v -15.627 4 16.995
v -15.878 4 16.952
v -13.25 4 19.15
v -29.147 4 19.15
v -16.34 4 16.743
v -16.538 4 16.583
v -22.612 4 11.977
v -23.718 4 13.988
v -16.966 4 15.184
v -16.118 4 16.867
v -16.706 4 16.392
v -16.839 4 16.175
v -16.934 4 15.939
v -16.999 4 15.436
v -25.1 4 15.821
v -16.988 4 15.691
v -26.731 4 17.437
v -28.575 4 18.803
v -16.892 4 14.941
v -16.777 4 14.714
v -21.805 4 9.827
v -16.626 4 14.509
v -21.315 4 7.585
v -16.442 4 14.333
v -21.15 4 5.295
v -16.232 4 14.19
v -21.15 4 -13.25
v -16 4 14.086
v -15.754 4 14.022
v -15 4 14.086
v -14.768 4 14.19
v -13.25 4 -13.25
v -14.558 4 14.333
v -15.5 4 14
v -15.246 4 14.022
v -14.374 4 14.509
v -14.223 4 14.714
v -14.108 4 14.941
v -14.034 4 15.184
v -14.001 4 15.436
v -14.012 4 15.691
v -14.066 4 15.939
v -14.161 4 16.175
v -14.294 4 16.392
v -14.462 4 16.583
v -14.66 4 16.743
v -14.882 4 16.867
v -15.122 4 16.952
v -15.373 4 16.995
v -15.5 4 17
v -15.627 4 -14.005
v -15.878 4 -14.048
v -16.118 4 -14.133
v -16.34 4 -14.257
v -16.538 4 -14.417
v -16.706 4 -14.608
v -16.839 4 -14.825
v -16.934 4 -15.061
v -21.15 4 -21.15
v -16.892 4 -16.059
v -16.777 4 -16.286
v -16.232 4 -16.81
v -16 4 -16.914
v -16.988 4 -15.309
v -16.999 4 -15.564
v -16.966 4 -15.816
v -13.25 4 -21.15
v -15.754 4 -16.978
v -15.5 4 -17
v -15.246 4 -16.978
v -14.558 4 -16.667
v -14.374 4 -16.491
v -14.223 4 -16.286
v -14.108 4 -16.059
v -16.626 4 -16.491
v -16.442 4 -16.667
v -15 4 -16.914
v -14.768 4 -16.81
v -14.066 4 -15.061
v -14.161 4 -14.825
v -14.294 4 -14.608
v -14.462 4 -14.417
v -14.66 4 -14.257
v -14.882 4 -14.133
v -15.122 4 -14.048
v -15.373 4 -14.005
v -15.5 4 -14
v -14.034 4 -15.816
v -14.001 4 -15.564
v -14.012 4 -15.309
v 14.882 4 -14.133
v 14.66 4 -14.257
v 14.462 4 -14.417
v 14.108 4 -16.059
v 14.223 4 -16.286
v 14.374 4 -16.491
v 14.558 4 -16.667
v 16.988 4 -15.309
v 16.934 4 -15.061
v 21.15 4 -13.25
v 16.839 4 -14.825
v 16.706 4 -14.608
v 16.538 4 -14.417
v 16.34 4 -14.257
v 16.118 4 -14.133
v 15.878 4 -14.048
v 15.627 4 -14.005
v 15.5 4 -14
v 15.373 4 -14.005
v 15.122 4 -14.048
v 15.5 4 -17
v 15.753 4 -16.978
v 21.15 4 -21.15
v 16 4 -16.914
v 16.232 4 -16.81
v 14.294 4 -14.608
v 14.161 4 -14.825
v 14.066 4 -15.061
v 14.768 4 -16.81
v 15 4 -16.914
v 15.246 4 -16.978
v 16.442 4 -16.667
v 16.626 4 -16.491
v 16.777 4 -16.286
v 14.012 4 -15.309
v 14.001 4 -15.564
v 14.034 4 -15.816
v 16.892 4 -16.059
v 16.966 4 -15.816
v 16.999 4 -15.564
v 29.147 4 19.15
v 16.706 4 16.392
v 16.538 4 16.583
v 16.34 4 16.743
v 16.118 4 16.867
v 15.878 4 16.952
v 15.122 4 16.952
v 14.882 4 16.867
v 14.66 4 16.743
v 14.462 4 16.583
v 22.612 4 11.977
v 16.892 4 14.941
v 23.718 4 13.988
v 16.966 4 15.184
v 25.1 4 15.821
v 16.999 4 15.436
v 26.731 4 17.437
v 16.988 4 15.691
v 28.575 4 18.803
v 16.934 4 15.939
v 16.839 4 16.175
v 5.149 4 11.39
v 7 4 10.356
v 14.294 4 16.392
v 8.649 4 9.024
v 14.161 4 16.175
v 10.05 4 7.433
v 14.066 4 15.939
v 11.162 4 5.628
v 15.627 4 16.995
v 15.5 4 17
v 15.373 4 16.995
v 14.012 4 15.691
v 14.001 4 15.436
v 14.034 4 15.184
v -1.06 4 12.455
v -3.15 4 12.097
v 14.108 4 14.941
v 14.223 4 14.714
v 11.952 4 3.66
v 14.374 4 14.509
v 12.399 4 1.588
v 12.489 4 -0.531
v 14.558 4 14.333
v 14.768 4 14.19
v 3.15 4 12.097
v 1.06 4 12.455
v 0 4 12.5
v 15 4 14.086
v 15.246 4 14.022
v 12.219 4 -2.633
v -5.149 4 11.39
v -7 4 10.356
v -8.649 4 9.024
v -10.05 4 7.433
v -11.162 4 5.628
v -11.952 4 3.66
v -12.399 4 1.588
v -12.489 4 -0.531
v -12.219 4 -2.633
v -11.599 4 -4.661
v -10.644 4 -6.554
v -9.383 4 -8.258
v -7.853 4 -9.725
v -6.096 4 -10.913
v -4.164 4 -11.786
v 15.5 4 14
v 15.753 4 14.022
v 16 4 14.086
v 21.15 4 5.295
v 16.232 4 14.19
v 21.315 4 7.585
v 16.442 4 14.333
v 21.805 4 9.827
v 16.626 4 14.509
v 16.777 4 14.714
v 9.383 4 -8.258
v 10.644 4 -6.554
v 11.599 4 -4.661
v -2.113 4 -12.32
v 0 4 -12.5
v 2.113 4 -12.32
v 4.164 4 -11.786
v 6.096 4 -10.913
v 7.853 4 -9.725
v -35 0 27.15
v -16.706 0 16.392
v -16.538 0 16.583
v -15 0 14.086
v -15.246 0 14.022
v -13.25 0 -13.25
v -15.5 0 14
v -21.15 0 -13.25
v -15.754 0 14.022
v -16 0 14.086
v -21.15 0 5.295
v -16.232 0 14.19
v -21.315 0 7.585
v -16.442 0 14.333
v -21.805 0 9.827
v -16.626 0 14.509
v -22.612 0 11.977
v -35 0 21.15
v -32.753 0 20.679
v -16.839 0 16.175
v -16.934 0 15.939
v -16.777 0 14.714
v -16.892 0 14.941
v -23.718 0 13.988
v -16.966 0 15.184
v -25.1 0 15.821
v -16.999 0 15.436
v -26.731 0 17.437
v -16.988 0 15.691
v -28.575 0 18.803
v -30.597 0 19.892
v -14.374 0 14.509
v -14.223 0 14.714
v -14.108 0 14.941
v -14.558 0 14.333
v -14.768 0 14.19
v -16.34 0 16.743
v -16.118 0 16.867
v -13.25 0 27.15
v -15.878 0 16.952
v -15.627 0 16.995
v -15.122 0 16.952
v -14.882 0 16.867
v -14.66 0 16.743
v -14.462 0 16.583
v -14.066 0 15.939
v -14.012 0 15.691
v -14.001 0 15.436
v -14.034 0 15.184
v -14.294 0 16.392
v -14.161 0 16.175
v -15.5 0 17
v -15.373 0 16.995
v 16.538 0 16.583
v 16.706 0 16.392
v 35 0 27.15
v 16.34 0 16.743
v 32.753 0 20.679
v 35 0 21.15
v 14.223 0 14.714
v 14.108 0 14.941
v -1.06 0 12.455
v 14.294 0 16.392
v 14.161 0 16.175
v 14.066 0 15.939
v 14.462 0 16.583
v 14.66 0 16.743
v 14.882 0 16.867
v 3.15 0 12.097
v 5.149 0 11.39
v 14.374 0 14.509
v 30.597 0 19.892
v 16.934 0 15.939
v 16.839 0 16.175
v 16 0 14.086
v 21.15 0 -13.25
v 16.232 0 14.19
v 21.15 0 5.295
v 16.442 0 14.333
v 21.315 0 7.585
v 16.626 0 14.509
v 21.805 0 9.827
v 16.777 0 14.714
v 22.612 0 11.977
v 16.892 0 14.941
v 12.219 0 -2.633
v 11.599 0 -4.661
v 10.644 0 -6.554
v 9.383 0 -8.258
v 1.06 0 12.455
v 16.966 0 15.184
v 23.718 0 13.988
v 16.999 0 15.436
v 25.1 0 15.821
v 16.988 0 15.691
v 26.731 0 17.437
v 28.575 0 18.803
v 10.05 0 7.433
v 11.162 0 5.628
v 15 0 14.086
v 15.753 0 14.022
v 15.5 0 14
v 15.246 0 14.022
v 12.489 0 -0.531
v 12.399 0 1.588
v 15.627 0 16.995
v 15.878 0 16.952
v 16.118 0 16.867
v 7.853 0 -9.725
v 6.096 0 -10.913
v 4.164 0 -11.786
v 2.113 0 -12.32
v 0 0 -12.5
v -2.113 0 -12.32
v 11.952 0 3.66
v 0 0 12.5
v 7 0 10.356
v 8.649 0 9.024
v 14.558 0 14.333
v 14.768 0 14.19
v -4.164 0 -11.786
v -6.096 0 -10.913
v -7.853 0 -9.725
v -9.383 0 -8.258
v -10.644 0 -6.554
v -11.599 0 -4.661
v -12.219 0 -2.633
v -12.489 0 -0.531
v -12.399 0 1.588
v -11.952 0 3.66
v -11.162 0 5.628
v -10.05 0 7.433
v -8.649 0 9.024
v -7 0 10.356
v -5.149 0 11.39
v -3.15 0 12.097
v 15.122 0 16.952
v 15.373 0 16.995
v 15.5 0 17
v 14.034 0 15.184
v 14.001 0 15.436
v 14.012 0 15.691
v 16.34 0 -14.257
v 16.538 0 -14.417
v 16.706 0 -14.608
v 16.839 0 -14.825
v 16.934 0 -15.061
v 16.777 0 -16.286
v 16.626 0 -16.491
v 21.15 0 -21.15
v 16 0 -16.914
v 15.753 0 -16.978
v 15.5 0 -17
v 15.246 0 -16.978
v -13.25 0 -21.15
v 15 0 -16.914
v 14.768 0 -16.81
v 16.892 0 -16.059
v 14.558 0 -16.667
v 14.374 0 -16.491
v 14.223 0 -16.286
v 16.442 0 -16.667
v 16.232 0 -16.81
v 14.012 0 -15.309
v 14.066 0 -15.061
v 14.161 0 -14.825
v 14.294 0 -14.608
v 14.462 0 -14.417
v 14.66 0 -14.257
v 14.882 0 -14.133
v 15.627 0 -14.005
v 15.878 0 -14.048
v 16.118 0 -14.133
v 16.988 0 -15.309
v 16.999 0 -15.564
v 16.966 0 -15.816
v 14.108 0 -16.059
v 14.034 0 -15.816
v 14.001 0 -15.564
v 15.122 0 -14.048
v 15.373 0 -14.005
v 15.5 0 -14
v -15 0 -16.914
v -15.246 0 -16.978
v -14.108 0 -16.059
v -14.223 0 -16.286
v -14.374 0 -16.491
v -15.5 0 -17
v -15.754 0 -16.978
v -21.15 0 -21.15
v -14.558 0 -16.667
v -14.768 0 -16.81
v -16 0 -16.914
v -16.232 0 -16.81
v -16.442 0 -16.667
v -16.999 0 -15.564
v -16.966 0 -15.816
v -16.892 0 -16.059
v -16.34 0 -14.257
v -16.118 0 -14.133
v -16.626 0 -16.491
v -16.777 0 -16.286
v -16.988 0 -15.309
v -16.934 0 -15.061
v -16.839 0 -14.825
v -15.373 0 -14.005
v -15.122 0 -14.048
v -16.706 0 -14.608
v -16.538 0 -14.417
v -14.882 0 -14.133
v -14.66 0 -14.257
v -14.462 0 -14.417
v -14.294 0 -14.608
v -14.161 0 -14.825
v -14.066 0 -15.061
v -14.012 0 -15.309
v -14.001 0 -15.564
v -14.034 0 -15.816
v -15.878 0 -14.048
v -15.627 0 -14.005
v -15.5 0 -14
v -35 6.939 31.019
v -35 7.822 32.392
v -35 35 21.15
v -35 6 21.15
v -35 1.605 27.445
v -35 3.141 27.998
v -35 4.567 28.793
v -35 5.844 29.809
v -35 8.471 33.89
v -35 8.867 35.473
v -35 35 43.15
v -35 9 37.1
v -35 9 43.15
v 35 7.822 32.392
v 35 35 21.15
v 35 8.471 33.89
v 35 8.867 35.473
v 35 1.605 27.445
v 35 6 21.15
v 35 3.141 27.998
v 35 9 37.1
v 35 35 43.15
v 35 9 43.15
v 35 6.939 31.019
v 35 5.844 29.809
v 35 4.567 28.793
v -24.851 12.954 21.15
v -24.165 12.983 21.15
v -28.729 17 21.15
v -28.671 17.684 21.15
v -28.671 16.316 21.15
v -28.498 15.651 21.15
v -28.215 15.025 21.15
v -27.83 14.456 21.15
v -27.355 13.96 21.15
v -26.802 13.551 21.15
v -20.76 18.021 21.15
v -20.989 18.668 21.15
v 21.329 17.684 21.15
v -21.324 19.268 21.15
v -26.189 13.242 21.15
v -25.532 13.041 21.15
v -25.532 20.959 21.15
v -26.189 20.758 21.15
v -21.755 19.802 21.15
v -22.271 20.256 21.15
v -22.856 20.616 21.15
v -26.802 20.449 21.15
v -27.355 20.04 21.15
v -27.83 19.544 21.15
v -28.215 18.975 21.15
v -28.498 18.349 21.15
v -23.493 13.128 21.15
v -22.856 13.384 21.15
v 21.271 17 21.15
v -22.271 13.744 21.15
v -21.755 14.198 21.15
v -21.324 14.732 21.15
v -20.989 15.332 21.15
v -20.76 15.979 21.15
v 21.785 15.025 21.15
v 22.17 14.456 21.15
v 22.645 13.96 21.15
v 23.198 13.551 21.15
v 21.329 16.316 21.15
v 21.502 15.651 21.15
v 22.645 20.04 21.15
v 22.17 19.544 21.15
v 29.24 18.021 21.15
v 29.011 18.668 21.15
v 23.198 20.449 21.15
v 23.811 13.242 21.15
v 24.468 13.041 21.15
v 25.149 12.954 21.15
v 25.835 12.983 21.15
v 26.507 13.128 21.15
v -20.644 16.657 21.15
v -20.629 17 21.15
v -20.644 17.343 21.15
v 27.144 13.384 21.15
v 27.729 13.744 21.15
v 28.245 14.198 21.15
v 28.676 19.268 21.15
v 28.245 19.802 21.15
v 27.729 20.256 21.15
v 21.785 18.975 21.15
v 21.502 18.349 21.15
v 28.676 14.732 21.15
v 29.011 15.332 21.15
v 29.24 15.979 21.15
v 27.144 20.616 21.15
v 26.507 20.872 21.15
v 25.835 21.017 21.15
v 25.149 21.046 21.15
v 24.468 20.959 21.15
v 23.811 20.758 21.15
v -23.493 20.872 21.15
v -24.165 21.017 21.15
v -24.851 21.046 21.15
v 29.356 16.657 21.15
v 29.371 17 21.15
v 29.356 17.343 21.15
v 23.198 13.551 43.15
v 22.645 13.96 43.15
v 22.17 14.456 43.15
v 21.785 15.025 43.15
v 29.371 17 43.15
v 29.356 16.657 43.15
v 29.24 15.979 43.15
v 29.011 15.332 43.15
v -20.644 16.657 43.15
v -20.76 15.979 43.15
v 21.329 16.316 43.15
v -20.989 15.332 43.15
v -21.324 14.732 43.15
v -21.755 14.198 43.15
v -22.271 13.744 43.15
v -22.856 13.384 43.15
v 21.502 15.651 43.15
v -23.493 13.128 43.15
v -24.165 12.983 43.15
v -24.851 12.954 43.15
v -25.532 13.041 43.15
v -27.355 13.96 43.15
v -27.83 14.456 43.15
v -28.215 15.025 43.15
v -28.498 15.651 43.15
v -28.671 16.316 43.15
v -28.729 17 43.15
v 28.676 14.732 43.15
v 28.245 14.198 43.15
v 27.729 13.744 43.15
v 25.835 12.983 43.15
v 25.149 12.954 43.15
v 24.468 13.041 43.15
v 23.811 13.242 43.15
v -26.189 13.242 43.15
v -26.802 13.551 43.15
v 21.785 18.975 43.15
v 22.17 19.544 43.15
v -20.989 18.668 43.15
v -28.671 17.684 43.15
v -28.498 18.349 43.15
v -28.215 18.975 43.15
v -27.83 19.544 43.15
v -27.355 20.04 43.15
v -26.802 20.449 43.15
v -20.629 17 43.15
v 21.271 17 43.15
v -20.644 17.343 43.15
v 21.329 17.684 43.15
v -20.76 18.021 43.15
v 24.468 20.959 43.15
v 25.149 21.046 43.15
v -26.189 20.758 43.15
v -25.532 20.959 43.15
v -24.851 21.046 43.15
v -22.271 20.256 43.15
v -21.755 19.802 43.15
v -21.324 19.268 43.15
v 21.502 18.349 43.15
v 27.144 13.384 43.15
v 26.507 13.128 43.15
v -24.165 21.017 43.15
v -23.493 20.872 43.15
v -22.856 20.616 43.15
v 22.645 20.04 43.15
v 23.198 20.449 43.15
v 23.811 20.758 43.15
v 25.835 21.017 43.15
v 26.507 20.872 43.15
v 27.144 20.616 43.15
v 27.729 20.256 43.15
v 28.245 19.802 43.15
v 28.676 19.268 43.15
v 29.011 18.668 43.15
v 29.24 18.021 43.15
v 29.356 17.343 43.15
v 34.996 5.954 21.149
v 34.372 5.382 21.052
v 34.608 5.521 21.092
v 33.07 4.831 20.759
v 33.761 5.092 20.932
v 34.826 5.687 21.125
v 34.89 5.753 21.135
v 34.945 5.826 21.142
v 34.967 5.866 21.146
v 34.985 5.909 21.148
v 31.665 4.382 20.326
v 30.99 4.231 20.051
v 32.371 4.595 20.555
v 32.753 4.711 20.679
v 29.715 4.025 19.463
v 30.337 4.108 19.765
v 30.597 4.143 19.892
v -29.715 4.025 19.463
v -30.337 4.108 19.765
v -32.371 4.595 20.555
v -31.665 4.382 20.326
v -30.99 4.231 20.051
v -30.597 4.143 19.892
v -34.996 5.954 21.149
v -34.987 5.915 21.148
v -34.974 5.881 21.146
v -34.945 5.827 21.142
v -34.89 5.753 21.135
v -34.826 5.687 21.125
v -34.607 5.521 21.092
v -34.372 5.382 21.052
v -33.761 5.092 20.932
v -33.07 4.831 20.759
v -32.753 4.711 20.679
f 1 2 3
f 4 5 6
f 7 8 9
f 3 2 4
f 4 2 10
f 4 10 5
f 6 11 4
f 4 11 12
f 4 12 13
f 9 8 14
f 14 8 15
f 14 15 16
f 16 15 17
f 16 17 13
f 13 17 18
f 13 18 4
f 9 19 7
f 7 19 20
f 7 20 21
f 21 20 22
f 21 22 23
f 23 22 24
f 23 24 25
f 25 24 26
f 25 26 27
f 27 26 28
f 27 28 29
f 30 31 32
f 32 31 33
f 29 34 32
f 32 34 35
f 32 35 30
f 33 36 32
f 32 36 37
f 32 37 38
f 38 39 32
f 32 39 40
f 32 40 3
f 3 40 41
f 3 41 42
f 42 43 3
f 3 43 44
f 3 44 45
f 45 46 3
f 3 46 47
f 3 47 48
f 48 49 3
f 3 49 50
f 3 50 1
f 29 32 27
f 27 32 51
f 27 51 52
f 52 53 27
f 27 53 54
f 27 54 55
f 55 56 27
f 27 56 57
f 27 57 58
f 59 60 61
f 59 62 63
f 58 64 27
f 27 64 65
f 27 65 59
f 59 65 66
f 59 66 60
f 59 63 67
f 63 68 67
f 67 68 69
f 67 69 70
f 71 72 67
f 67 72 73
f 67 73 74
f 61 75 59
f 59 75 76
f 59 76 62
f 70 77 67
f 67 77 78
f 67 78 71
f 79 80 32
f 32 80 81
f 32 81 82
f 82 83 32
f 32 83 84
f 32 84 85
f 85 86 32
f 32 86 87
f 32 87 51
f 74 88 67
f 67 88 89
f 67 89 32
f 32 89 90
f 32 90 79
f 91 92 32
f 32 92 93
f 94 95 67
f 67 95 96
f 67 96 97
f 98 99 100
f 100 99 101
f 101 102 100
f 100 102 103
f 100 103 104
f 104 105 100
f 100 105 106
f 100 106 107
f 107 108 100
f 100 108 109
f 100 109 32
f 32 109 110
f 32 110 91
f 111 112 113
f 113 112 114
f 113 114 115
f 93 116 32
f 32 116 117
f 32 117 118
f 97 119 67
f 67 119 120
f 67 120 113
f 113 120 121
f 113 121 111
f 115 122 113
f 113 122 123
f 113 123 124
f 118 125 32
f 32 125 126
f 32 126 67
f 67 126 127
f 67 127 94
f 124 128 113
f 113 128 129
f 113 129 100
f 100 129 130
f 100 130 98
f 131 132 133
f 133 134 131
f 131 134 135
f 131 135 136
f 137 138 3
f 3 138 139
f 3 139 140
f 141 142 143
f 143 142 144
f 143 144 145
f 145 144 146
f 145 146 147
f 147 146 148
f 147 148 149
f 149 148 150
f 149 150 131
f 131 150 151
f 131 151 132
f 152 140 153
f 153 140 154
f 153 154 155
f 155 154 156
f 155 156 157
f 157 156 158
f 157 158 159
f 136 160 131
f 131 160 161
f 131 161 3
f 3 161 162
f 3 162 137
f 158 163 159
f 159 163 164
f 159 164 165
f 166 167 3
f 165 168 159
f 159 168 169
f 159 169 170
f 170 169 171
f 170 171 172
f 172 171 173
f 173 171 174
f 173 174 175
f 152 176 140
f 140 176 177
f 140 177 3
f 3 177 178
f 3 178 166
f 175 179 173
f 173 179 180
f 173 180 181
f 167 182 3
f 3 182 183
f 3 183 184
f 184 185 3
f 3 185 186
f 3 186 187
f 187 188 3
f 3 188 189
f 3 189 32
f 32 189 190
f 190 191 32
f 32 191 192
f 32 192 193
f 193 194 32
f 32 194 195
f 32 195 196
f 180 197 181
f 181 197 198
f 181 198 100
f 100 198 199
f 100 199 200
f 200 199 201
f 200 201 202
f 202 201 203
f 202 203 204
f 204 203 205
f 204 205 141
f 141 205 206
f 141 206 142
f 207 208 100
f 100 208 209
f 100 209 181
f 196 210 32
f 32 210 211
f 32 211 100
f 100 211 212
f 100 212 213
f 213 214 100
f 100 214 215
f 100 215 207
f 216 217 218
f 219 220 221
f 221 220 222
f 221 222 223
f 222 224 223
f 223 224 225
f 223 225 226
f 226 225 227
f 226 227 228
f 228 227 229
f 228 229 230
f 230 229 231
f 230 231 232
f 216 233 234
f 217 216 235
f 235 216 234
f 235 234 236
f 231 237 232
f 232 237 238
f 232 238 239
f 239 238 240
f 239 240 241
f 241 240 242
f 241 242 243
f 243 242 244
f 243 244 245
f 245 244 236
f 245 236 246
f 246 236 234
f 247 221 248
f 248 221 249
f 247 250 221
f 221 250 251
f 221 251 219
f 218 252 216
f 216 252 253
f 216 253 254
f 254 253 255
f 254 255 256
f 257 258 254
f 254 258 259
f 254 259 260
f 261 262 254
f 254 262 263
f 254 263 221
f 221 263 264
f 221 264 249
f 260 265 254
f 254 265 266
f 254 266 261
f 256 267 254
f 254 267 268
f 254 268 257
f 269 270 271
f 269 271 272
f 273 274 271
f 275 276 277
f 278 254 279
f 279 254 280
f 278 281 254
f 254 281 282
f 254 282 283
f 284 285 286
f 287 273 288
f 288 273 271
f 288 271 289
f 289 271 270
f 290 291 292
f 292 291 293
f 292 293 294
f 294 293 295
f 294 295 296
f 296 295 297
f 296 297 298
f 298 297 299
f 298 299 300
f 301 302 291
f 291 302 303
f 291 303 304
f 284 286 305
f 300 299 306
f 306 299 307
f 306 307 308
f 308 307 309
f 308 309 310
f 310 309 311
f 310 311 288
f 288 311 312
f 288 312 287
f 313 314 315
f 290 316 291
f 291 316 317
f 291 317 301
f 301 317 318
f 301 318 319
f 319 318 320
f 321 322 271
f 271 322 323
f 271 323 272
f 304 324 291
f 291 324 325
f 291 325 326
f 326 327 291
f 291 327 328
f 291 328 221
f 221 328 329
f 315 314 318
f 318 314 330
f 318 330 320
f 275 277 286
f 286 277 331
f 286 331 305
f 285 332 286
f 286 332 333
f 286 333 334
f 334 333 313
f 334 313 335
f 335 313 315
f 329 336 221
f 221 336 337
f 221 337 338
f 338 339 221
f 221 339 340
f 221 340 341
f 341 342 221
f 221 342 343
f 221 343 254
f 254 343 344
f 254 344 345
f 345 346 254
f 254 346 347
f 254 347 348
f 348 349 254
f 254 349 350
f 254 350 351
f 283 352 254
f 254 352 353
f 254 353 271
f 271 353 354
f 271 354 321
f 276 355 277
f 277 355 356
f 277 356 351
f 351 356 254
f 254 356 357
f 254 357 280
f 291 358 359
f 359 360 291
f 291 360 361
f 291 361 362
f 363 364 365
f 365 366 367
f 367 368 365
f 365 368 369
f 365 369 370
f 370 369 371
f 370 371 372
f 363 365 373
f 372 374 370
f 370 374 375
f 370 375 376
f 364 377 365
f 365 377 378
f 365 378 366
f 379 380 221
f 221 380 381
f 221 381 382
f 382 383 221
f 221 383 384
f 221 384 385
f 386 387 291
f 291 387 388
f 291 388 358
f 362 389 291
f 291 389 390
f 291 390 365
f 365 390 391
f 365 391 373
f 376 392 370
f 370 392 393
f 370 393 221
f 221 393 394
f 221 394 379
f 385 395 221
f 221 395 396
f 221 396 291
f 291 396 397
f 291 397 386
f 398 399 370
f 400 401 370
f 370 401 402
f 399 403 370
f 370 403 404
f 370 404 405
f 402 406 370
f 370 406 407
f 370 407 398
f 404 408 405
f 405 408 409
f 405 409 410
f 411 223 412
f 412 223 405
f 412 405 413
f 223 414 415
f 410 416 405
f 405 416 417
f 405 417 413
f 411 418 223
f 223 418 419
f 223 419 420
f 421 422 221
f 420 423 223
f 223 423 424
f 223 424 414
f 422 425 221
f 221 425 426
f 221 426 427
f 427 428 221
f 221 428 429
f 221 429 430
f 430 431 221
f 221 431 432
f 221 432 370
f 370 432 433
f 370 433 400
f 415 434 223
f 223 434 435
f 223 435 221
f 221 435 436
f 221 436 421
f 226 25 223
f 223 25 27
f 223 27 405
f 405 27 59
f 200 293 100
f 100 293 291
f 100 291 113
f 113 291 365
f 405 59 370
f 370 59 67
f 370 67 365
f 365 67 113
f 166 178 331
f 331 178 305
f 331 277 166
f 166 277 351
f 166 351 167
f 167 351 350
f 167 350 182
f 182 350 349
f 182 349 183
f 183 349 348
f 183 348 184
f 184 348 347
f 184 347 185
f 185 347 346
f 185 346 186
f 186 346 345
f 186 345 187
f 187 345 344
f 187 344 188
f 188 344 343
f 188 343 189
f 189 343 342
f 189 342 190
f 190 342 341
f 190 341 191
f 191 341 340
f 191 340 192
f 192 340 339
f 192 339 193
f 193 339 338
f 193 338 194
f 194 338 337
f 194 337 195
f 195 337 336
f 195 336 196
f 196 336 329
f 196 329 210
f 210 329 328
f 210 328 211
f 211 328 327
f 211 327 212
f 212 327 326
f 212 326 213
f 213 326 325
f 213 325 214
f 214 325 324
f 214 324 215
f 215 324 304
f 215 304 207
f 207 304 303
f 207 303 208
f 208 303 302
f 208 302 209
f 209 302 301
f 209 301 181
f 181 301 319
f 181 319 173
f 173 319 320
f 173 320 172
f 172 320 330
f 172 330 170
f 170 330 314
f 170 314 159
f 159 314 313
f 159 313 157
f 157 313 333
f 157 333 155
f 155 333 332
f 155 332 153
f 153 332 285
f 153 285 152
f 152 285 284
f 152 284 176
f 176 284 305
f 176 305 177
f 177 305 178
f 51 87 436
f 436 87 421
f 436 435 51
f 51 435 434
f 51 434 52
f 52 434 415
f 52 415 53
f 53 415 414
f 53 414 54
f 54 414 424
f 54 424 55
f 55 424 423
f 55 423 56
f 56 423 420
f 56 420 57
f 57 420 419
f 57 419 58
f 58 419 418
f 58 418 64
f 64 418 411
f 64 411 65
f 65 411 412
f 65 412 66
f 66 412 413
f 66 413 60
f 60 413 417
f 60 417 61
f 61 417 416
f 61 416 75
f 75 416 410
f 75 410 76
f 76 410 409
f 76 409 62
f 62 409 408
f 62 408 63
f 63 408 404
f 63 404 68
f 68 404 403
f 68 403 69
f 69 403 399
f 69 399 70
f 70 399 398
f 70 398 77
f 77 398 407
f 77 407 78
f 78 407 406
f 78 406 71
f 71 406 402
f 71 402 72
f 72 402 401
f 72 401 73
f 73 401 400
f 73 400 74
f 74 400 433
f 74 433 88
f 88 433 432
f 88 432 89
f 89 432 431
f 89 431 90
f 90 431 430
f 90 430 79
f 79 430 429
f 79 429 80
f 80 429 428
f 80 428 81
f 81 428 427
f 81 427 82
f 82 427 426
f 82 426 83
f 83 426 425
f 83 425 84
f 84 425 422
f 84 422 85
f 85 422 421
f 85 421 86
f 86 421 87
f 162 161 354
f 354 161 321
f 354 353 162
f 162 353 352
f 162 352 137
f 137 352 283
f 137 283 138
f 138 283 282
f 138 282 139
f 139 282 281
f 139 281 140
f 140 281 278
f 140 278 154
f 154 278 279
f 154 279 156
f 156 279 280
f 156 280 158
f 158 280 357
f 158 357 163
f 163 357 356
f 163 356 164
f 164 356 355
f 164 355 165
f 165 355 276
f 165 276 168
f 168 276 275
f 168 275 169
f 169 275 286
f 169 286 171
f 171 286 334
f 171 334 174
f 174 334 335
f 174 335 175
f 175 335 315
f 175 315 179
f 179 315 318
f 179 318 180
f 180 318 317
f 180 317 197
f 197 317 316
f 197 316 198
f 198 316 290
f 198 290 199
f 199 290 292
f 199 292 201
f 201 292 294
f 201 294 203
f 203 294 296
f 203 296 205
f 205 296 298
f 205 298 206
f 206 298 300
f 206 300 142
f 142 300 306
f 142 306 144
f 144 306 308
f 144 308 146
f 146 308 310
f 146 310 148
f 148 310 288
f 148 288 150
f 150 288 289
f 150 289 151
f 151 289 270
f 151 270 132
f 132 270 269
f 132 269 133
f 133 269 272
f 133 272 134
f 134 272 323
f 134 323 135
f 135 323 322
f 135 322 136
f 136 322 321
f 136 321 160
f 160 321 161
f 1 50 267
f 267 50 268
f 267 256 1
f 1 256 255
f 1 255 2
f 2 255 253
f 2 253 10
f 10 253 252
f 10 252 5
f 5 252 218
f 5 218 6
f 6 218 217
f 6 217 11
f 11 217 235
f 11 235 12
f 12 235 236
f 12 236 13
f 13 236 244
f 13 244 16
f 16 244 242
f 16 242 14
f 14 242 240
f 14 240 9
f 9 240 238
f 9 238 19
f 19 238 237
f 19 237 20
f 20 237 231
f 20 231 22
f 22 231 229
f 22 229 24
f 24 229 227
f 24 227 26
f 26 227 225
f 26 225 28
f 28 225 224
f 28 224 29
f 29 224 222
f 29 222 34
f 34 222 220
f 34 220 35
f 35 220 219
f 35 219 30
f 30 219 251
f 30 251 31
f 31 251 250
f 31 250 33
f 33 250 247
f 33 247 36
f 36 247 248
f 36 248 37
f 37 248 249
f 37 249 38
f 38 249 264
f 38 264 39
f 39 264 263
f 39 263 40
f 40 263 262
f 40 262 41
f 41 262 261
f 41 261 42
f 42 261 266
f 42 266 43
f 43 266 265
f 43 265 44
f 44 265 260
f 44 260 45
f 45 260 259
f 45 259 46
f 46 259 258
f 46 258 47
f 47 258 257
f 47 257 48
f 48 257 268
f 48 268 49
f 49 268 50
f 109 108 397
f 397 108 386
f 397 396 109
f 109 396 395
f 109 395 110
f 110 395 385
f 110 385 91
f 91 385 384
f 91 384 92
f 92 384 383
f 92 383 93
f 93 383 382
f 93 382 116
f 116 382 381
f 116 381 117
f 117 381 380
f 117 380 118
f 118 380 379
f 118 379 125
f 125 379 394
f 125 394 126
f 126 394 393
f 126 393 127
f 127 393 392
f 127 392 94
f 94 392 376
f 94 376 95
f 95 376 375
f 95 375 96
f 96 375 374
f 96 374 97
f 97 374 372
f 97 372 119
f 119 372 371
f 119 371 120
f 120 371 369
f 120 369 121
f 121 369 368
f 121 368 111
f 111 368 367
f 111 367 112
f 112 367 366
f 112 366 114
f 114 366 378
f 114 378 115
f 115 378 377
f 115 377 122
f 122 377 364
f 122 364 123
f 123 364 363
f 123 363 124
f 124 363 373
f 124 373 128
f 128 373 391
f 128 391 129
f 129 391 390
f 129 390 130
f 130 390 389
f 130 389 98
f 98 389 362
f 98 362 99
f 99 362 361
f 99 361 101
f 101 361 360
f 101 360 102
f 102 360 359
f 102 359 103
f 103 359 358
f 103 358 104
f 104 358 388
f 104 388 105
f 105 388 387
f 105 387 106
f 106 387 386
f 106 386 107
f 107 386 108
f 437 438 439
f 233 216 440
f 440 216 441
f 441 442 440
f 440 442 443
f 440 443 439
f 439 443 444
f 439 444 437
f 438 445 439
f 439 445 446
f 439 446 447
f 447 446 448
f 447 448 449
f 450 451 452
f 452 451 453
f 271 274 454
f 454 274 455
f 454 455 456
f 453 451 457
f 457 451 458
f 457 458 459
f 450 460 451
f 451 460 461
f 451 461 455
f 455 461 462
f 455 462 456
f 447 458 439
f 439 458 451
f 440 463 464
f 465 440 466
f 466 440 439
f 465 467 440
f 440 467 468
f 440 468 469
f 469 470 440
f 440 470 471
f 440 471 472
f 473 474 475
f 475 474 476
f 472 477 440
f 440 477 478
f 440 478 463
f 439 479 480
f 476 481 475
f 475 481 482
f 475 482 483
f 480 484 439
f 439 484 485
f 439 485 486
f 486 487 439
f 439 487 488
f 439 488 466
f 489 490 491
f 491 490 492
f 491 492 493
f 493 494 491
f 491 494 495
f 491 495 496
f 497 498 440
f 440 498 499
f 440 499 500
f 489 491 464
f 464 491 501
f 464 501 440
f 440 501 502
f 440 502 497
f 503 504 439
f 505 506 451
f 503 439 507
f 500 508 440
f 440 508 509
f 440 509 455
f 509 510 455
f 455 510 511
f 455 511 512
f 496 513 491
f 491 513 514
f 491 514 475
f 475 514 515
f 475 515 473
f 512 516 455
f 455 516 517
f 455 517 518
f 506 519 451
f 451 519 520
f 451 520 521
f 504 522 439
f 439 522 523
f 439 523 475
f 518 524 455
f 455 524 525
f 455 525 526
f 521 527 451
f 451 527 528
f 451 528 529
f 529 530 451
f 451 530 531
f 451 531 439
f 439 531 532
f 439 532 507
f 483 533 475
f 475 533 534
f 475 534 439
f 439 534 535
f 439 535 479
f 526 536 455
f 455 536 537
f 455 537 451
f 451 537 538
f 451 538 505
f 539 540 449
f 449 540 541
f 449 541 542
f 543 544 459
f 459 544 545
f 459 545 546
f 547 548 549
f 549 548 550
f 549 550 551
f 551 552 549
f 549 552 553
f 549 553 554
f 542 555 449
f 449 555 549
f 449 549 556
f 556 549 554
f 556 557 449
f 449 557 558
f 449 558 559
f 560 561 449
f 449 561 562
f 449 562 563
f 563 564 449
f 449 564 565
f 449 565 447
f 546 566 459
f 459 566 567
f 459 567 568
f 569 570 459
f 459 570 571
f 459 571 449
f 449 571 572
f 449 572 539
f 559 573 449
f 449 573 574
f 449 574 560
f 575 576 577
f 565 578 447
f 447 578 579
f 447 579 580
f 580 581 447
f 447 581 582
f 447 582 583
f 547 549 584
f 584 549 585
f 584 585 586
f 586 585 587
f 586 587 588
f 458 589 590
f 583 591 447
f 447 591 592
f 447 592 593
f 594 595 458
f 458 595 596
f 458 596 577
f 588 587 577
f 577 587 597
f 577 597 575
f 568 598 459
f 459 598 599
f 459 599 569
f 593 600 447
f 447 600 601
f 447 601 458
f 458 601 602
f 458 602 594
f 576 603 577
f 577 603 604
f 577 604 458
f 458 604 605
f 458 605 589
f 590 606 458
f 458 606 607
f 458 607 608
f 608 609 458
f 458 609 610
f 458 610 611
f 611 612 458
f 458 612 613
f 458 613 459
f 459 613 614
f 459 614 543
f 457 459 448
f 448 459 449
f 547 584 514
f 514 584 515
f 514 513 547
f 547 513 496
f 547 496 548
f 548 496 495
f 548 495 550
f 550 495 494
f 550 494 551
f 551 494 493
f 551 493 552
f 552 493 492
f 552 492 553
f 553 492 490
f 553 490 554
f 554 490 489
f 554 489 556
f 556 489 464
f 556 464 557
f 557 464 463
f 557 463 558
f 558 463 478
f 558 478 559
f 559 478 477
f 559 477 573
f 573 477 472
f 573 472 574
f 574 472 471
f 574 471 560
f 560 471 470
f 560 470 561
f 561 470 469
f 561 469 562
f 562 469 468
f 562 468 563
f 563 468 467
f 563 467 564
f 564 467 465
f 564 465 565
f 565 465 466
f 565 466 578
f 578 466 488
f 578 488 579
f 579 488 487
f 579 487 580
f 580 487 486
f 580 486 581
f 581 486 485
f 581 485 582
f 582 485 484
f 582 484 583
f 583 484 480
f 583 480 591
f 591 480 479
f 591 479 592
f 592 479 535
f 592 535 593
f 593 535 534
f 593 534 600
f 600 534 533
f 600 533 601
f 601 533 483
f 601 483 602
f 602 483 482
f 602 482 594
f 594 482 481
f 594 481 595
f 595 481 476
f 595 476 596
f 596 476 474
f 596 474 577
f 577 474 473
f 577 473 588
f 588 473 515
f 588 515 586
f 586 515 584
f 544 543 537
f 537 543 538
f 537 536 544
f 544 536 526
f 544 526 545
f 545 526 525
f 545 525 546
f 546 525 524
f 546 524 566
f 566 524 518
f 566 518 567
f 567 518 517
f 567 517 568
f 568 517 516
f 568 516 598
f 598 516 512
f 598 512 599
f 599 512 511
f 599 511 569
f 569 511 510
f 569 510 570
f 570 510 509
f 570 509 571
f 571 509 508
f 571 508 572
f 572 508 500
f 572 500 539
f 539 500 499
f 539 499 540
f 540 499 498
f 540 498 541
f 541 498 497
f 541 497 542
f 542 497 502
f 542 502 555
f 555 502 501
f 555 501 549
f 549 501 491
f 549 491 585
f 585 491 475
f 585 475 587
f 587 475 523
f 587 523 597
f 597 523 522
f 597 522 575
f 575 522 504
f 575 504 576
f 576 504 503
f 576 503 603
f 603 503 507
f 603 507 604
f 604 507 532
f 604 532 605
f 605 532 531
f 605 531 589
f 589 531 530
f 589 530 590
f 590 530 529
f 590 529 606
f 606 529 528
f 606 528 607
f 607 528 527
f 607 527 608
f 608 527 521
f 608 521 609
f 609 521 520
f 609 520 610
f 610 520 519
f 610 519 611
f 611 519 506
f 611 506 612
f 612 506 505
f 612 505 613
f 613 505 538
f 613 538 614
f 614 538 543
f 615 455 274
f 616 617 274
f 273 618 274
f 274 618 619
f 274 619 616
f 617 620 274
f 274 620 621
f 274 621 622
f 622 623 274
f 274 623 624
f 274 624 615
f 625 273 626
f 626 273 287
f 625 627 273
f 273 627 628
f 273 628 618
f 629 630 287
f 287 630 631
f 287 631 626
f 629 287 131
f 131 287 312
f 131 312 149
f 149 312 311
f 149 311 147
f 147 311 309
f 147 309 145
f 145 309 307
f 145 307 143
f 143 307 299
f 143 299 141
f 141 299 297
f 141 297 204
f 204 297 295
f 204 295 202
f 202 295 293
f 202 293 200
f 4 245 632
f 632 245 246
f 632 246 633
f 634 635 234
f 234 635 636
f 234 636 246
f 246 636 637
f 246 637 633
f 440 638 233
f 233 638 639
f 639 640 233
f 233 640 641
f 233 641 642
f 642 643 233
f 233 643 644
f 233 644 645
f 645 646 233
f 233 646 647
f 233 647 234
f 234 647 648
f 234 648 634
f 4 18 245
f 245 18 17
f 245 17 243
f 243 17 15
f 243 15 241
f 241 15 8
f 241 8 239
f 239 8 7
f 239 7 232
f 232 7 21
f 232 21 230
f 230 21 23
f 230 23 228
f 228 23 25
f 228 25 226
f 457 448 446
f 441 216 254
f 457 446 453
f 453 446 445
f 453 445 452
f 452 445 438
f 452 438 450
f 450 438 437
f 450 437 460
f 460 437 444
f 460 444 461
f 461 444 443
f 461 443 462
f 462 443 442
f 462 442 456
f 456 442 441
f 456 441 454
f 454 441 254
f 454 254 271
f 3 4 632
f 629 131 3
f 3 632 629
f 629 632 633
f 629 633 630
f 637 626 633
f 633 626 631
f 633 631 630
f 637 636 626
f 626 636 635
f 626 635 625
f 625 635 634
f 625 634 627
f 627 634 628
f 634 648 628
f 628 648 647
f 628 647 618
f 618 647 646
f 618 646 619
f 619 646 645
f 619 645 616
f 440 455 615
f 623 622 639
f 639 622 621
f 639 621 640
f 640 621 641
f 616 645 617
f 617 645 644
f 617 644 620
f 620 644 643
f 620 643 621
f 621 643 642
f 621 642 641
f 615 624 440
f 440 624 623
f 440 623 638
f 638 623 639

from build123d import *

# Parameters (mm, degrees)
SKETCH1_W           = 42.3
SKETCH1_H           = 42.3
SKETCH1_R           = 1.5
SKETCH1_R_2         = 12.5
BOSS_EXTRUDE1_DEPTH = 4
SKETCH2_W           = 70
SKETCH2_H           = 35
BOSS_EXTRUDE3_DEPTH = 6
SKETCH5_W           = 70
SKETCH5_H           = 26
SKETCH5_R           = 4.05
BOSS_EXTRUDE7_DEPTH = 16
CUT_EXTRUDE1_START  = -16
SKETCH5_2_R         = 4.05
CUT_EXTRUDE1_DEPTH  = 16
FILLET1_R           = 16
FILLET2_R           = 10
FILLET4_R           = 2


with BuildPart() as part:
    # Sketch1 → Boss-Extrude1 (new body)
    with BuildSketch(Plane(origin=(0, 0, 0), x_dir=(1, 0, 0), z_dir=(0, 1, 0))):
        Rectangle(SKETCH1_W, SKETCH1_H)
        with Locations(Location((-15.5, 15.5, 0), (0, 0, 270))):
            Circle(SKETCH1_R, mode=Mode.SUBTRACT)
        with Locations(Location((15.5, 15.5, 0), (0, 0, 270))):
            Circle(SKETCH1_R, mode=Mode.SUBTRACT)
        with Locations(Location((15.5, -15.5, 0), (0, 0, 270))):
            Circle(SKETCH1_R, mode=Mode.SUBTRACT)
        with Locations(Location((-15.5, -15.5, 0), (0, 0, 270))):
            Circle(SKETCH1_R, mode=Mode.SUBTRACT)
        with Locations(Location((0, 0, 0), (0, 0, 270))):
            Circle(SKETCH1_R_2, mode=Mode.SUBTRACT)
    extrude(amount=BOSS_EXTRUDE1_DEPTH)

    # Sketch2 → Boss-Extrude3 (add)
    with BuildSketch(Plane.XY.offset(21.15)):
        with Locations((0, 17.5)):
            Rectangle(SKETCH2_W, SKETCH2_H)
    extrude(amount=BOSS_EXTRUDE3_DEPTH)

    # Sketch5 → Boss-Extrude7 (add)
    with BuildSketch(Plane.XY.offset(27.15)):
        with Locations((0, 22)):
            Rectangle(SKETCH5_W, SKETCH5_H)
        with Locations((-24.679036529, 17)):
            Circle(SKETCH5_R, mode=Mode.SUBTRACT)
        with Locations((25.320963471, 17)):
            Circle(SKETCH5_R, mode=Mode.SUBTRACT)
    extrude(amount=BOSS_EXTRUDE7_DEPTH)

    # Sketch5<2> → Cut-Extrude1 (cut)
    with BuildSketch(Plane.XY.offset(27.15).offset(CUT_EXTRUDE1_START)):
        with Locations((-24.679036529, 17)):
            Circle(SKETCH5_2_R)
        with Locations((25.320963471, 17)):
            Circle(SKETCH5_2_R)
    extrude(amount=CUT_EXTRUDE1_DEPTH, mode=Mode.SUBTRACT)

    # Fillet1
    # the kernel refuses this fillet: 16 mm, written as the material it adds along each edge
    with BuildSketch(Plane(origin=(21.15, 0, 21.15), x_dir=(1, 0, 0), z_dir=(0, 1, 0))) as fillet1_piece_1:
        with BuildLine():
            CenterArc((16, 15.854888836), FILLET1_R, 180, 82.27751927)
            Line((0, 15.854888836), (-0.32, 15.854888836))
            Line((-0.32, 15.854888836), (-0.32, 0))
            Line((-0.32, 0), (0, -0.32))
            ThreePointArc((0, -0.32), (6.925, -0.32), (13.807, -0.317097777))
            Line((13.807, -0.317097777), (13.85, 0))
        make_face()
    extrude(amount=4)
    with BuildSketch(Plane(origin=(-21.15, 0, 21.15), x_dir=(-1, 0, 0), z_dir=(0, 1, 0))) as fillet1_piece_2:
        with BuildLine():
            CenterArc((16, -15.854888836), FILLET1_R, 97.72248073, 82.27751927)
            Line((0, -15.854888836), (-0.32, -15.854888836))
            Line((-0.32, -15.854888836), (-0.32, 0))
            Line((-0.32, 0), (0, 0.32))
            ThreePointArc((0, 0.32), (6.925, 0.32), (13.807, 0.317097777))
            Line((13.807, 0.317097777), (13.85, 0))
        make_face()
    extrude(amount=4)

    # Fillet2
    # the kernel refuses this fillet: 10 mm, written as the material it adds along each edge
    with BuildSketch(Plane(origin=(35, 9, 27.15), x_dir=(0, 0, 1), z_dir=(-1, 0, 0))) as fillet2_piece_1:
        with BuildLine():
            CenterArc((9.949874371, -10), FILLET2_R, 90, 84.260829523)
            Line((0, -9), (-0.198997487, -8.98))
            ThreePointArc((-0.198997487, -8.98), (-0.2, -4.5), (-0.2, 0))
            Line((-0.2, 0), (0, 0.2))
            Line((0, 0.2), (9.949874371, 0.2))
            Line((9.949874371, 0.2), (9.949874371, 0))
        make_face()
    extrude(amount=70)

    # Fillet4
    # the kernel refuses this fillet: 2 mm, written as the material it adds along each edge
    with BuildSketch(Plane(origin=(-35, 4, 21.15), x_dir=(0, 1, 0), z_dir=(1, 0, 0))) as fillet4_piece_1_section:
        with BuildLine():
            CenterArc((FILLET4_R, -FILLET4_R), FILLET4_R, 90, 90)
            Line((0, -FILLET4_R), (0, 0))
            Line((0, 0), (FILLET4_R, 0))
        make_face()
    fillet4_piece_1 = extrude(amount=70, mode=Mode.PRIVATE)
    fillet4_piece_1 = fillet4_piece_1 - Plane(origin=(-37.15, 4.464640399, 5.295111164), x_dir=(-1, 0, 0), z_dir=(0, -1, 0)) * Cylinder(16, 148, mode=Mode.PRIVATE)
    fillet4_piece_1 = fillet4_piece_1 - Plane(origin=(37.15, 4.464640399, 5.295111164), x_dir=(1, 0, 0), z_dir=(0, -1, 0)) * Cylinder(16, 148, mode=Mode.PRIVATE)
    add(fillet4_piece_1)


solid = part.part
